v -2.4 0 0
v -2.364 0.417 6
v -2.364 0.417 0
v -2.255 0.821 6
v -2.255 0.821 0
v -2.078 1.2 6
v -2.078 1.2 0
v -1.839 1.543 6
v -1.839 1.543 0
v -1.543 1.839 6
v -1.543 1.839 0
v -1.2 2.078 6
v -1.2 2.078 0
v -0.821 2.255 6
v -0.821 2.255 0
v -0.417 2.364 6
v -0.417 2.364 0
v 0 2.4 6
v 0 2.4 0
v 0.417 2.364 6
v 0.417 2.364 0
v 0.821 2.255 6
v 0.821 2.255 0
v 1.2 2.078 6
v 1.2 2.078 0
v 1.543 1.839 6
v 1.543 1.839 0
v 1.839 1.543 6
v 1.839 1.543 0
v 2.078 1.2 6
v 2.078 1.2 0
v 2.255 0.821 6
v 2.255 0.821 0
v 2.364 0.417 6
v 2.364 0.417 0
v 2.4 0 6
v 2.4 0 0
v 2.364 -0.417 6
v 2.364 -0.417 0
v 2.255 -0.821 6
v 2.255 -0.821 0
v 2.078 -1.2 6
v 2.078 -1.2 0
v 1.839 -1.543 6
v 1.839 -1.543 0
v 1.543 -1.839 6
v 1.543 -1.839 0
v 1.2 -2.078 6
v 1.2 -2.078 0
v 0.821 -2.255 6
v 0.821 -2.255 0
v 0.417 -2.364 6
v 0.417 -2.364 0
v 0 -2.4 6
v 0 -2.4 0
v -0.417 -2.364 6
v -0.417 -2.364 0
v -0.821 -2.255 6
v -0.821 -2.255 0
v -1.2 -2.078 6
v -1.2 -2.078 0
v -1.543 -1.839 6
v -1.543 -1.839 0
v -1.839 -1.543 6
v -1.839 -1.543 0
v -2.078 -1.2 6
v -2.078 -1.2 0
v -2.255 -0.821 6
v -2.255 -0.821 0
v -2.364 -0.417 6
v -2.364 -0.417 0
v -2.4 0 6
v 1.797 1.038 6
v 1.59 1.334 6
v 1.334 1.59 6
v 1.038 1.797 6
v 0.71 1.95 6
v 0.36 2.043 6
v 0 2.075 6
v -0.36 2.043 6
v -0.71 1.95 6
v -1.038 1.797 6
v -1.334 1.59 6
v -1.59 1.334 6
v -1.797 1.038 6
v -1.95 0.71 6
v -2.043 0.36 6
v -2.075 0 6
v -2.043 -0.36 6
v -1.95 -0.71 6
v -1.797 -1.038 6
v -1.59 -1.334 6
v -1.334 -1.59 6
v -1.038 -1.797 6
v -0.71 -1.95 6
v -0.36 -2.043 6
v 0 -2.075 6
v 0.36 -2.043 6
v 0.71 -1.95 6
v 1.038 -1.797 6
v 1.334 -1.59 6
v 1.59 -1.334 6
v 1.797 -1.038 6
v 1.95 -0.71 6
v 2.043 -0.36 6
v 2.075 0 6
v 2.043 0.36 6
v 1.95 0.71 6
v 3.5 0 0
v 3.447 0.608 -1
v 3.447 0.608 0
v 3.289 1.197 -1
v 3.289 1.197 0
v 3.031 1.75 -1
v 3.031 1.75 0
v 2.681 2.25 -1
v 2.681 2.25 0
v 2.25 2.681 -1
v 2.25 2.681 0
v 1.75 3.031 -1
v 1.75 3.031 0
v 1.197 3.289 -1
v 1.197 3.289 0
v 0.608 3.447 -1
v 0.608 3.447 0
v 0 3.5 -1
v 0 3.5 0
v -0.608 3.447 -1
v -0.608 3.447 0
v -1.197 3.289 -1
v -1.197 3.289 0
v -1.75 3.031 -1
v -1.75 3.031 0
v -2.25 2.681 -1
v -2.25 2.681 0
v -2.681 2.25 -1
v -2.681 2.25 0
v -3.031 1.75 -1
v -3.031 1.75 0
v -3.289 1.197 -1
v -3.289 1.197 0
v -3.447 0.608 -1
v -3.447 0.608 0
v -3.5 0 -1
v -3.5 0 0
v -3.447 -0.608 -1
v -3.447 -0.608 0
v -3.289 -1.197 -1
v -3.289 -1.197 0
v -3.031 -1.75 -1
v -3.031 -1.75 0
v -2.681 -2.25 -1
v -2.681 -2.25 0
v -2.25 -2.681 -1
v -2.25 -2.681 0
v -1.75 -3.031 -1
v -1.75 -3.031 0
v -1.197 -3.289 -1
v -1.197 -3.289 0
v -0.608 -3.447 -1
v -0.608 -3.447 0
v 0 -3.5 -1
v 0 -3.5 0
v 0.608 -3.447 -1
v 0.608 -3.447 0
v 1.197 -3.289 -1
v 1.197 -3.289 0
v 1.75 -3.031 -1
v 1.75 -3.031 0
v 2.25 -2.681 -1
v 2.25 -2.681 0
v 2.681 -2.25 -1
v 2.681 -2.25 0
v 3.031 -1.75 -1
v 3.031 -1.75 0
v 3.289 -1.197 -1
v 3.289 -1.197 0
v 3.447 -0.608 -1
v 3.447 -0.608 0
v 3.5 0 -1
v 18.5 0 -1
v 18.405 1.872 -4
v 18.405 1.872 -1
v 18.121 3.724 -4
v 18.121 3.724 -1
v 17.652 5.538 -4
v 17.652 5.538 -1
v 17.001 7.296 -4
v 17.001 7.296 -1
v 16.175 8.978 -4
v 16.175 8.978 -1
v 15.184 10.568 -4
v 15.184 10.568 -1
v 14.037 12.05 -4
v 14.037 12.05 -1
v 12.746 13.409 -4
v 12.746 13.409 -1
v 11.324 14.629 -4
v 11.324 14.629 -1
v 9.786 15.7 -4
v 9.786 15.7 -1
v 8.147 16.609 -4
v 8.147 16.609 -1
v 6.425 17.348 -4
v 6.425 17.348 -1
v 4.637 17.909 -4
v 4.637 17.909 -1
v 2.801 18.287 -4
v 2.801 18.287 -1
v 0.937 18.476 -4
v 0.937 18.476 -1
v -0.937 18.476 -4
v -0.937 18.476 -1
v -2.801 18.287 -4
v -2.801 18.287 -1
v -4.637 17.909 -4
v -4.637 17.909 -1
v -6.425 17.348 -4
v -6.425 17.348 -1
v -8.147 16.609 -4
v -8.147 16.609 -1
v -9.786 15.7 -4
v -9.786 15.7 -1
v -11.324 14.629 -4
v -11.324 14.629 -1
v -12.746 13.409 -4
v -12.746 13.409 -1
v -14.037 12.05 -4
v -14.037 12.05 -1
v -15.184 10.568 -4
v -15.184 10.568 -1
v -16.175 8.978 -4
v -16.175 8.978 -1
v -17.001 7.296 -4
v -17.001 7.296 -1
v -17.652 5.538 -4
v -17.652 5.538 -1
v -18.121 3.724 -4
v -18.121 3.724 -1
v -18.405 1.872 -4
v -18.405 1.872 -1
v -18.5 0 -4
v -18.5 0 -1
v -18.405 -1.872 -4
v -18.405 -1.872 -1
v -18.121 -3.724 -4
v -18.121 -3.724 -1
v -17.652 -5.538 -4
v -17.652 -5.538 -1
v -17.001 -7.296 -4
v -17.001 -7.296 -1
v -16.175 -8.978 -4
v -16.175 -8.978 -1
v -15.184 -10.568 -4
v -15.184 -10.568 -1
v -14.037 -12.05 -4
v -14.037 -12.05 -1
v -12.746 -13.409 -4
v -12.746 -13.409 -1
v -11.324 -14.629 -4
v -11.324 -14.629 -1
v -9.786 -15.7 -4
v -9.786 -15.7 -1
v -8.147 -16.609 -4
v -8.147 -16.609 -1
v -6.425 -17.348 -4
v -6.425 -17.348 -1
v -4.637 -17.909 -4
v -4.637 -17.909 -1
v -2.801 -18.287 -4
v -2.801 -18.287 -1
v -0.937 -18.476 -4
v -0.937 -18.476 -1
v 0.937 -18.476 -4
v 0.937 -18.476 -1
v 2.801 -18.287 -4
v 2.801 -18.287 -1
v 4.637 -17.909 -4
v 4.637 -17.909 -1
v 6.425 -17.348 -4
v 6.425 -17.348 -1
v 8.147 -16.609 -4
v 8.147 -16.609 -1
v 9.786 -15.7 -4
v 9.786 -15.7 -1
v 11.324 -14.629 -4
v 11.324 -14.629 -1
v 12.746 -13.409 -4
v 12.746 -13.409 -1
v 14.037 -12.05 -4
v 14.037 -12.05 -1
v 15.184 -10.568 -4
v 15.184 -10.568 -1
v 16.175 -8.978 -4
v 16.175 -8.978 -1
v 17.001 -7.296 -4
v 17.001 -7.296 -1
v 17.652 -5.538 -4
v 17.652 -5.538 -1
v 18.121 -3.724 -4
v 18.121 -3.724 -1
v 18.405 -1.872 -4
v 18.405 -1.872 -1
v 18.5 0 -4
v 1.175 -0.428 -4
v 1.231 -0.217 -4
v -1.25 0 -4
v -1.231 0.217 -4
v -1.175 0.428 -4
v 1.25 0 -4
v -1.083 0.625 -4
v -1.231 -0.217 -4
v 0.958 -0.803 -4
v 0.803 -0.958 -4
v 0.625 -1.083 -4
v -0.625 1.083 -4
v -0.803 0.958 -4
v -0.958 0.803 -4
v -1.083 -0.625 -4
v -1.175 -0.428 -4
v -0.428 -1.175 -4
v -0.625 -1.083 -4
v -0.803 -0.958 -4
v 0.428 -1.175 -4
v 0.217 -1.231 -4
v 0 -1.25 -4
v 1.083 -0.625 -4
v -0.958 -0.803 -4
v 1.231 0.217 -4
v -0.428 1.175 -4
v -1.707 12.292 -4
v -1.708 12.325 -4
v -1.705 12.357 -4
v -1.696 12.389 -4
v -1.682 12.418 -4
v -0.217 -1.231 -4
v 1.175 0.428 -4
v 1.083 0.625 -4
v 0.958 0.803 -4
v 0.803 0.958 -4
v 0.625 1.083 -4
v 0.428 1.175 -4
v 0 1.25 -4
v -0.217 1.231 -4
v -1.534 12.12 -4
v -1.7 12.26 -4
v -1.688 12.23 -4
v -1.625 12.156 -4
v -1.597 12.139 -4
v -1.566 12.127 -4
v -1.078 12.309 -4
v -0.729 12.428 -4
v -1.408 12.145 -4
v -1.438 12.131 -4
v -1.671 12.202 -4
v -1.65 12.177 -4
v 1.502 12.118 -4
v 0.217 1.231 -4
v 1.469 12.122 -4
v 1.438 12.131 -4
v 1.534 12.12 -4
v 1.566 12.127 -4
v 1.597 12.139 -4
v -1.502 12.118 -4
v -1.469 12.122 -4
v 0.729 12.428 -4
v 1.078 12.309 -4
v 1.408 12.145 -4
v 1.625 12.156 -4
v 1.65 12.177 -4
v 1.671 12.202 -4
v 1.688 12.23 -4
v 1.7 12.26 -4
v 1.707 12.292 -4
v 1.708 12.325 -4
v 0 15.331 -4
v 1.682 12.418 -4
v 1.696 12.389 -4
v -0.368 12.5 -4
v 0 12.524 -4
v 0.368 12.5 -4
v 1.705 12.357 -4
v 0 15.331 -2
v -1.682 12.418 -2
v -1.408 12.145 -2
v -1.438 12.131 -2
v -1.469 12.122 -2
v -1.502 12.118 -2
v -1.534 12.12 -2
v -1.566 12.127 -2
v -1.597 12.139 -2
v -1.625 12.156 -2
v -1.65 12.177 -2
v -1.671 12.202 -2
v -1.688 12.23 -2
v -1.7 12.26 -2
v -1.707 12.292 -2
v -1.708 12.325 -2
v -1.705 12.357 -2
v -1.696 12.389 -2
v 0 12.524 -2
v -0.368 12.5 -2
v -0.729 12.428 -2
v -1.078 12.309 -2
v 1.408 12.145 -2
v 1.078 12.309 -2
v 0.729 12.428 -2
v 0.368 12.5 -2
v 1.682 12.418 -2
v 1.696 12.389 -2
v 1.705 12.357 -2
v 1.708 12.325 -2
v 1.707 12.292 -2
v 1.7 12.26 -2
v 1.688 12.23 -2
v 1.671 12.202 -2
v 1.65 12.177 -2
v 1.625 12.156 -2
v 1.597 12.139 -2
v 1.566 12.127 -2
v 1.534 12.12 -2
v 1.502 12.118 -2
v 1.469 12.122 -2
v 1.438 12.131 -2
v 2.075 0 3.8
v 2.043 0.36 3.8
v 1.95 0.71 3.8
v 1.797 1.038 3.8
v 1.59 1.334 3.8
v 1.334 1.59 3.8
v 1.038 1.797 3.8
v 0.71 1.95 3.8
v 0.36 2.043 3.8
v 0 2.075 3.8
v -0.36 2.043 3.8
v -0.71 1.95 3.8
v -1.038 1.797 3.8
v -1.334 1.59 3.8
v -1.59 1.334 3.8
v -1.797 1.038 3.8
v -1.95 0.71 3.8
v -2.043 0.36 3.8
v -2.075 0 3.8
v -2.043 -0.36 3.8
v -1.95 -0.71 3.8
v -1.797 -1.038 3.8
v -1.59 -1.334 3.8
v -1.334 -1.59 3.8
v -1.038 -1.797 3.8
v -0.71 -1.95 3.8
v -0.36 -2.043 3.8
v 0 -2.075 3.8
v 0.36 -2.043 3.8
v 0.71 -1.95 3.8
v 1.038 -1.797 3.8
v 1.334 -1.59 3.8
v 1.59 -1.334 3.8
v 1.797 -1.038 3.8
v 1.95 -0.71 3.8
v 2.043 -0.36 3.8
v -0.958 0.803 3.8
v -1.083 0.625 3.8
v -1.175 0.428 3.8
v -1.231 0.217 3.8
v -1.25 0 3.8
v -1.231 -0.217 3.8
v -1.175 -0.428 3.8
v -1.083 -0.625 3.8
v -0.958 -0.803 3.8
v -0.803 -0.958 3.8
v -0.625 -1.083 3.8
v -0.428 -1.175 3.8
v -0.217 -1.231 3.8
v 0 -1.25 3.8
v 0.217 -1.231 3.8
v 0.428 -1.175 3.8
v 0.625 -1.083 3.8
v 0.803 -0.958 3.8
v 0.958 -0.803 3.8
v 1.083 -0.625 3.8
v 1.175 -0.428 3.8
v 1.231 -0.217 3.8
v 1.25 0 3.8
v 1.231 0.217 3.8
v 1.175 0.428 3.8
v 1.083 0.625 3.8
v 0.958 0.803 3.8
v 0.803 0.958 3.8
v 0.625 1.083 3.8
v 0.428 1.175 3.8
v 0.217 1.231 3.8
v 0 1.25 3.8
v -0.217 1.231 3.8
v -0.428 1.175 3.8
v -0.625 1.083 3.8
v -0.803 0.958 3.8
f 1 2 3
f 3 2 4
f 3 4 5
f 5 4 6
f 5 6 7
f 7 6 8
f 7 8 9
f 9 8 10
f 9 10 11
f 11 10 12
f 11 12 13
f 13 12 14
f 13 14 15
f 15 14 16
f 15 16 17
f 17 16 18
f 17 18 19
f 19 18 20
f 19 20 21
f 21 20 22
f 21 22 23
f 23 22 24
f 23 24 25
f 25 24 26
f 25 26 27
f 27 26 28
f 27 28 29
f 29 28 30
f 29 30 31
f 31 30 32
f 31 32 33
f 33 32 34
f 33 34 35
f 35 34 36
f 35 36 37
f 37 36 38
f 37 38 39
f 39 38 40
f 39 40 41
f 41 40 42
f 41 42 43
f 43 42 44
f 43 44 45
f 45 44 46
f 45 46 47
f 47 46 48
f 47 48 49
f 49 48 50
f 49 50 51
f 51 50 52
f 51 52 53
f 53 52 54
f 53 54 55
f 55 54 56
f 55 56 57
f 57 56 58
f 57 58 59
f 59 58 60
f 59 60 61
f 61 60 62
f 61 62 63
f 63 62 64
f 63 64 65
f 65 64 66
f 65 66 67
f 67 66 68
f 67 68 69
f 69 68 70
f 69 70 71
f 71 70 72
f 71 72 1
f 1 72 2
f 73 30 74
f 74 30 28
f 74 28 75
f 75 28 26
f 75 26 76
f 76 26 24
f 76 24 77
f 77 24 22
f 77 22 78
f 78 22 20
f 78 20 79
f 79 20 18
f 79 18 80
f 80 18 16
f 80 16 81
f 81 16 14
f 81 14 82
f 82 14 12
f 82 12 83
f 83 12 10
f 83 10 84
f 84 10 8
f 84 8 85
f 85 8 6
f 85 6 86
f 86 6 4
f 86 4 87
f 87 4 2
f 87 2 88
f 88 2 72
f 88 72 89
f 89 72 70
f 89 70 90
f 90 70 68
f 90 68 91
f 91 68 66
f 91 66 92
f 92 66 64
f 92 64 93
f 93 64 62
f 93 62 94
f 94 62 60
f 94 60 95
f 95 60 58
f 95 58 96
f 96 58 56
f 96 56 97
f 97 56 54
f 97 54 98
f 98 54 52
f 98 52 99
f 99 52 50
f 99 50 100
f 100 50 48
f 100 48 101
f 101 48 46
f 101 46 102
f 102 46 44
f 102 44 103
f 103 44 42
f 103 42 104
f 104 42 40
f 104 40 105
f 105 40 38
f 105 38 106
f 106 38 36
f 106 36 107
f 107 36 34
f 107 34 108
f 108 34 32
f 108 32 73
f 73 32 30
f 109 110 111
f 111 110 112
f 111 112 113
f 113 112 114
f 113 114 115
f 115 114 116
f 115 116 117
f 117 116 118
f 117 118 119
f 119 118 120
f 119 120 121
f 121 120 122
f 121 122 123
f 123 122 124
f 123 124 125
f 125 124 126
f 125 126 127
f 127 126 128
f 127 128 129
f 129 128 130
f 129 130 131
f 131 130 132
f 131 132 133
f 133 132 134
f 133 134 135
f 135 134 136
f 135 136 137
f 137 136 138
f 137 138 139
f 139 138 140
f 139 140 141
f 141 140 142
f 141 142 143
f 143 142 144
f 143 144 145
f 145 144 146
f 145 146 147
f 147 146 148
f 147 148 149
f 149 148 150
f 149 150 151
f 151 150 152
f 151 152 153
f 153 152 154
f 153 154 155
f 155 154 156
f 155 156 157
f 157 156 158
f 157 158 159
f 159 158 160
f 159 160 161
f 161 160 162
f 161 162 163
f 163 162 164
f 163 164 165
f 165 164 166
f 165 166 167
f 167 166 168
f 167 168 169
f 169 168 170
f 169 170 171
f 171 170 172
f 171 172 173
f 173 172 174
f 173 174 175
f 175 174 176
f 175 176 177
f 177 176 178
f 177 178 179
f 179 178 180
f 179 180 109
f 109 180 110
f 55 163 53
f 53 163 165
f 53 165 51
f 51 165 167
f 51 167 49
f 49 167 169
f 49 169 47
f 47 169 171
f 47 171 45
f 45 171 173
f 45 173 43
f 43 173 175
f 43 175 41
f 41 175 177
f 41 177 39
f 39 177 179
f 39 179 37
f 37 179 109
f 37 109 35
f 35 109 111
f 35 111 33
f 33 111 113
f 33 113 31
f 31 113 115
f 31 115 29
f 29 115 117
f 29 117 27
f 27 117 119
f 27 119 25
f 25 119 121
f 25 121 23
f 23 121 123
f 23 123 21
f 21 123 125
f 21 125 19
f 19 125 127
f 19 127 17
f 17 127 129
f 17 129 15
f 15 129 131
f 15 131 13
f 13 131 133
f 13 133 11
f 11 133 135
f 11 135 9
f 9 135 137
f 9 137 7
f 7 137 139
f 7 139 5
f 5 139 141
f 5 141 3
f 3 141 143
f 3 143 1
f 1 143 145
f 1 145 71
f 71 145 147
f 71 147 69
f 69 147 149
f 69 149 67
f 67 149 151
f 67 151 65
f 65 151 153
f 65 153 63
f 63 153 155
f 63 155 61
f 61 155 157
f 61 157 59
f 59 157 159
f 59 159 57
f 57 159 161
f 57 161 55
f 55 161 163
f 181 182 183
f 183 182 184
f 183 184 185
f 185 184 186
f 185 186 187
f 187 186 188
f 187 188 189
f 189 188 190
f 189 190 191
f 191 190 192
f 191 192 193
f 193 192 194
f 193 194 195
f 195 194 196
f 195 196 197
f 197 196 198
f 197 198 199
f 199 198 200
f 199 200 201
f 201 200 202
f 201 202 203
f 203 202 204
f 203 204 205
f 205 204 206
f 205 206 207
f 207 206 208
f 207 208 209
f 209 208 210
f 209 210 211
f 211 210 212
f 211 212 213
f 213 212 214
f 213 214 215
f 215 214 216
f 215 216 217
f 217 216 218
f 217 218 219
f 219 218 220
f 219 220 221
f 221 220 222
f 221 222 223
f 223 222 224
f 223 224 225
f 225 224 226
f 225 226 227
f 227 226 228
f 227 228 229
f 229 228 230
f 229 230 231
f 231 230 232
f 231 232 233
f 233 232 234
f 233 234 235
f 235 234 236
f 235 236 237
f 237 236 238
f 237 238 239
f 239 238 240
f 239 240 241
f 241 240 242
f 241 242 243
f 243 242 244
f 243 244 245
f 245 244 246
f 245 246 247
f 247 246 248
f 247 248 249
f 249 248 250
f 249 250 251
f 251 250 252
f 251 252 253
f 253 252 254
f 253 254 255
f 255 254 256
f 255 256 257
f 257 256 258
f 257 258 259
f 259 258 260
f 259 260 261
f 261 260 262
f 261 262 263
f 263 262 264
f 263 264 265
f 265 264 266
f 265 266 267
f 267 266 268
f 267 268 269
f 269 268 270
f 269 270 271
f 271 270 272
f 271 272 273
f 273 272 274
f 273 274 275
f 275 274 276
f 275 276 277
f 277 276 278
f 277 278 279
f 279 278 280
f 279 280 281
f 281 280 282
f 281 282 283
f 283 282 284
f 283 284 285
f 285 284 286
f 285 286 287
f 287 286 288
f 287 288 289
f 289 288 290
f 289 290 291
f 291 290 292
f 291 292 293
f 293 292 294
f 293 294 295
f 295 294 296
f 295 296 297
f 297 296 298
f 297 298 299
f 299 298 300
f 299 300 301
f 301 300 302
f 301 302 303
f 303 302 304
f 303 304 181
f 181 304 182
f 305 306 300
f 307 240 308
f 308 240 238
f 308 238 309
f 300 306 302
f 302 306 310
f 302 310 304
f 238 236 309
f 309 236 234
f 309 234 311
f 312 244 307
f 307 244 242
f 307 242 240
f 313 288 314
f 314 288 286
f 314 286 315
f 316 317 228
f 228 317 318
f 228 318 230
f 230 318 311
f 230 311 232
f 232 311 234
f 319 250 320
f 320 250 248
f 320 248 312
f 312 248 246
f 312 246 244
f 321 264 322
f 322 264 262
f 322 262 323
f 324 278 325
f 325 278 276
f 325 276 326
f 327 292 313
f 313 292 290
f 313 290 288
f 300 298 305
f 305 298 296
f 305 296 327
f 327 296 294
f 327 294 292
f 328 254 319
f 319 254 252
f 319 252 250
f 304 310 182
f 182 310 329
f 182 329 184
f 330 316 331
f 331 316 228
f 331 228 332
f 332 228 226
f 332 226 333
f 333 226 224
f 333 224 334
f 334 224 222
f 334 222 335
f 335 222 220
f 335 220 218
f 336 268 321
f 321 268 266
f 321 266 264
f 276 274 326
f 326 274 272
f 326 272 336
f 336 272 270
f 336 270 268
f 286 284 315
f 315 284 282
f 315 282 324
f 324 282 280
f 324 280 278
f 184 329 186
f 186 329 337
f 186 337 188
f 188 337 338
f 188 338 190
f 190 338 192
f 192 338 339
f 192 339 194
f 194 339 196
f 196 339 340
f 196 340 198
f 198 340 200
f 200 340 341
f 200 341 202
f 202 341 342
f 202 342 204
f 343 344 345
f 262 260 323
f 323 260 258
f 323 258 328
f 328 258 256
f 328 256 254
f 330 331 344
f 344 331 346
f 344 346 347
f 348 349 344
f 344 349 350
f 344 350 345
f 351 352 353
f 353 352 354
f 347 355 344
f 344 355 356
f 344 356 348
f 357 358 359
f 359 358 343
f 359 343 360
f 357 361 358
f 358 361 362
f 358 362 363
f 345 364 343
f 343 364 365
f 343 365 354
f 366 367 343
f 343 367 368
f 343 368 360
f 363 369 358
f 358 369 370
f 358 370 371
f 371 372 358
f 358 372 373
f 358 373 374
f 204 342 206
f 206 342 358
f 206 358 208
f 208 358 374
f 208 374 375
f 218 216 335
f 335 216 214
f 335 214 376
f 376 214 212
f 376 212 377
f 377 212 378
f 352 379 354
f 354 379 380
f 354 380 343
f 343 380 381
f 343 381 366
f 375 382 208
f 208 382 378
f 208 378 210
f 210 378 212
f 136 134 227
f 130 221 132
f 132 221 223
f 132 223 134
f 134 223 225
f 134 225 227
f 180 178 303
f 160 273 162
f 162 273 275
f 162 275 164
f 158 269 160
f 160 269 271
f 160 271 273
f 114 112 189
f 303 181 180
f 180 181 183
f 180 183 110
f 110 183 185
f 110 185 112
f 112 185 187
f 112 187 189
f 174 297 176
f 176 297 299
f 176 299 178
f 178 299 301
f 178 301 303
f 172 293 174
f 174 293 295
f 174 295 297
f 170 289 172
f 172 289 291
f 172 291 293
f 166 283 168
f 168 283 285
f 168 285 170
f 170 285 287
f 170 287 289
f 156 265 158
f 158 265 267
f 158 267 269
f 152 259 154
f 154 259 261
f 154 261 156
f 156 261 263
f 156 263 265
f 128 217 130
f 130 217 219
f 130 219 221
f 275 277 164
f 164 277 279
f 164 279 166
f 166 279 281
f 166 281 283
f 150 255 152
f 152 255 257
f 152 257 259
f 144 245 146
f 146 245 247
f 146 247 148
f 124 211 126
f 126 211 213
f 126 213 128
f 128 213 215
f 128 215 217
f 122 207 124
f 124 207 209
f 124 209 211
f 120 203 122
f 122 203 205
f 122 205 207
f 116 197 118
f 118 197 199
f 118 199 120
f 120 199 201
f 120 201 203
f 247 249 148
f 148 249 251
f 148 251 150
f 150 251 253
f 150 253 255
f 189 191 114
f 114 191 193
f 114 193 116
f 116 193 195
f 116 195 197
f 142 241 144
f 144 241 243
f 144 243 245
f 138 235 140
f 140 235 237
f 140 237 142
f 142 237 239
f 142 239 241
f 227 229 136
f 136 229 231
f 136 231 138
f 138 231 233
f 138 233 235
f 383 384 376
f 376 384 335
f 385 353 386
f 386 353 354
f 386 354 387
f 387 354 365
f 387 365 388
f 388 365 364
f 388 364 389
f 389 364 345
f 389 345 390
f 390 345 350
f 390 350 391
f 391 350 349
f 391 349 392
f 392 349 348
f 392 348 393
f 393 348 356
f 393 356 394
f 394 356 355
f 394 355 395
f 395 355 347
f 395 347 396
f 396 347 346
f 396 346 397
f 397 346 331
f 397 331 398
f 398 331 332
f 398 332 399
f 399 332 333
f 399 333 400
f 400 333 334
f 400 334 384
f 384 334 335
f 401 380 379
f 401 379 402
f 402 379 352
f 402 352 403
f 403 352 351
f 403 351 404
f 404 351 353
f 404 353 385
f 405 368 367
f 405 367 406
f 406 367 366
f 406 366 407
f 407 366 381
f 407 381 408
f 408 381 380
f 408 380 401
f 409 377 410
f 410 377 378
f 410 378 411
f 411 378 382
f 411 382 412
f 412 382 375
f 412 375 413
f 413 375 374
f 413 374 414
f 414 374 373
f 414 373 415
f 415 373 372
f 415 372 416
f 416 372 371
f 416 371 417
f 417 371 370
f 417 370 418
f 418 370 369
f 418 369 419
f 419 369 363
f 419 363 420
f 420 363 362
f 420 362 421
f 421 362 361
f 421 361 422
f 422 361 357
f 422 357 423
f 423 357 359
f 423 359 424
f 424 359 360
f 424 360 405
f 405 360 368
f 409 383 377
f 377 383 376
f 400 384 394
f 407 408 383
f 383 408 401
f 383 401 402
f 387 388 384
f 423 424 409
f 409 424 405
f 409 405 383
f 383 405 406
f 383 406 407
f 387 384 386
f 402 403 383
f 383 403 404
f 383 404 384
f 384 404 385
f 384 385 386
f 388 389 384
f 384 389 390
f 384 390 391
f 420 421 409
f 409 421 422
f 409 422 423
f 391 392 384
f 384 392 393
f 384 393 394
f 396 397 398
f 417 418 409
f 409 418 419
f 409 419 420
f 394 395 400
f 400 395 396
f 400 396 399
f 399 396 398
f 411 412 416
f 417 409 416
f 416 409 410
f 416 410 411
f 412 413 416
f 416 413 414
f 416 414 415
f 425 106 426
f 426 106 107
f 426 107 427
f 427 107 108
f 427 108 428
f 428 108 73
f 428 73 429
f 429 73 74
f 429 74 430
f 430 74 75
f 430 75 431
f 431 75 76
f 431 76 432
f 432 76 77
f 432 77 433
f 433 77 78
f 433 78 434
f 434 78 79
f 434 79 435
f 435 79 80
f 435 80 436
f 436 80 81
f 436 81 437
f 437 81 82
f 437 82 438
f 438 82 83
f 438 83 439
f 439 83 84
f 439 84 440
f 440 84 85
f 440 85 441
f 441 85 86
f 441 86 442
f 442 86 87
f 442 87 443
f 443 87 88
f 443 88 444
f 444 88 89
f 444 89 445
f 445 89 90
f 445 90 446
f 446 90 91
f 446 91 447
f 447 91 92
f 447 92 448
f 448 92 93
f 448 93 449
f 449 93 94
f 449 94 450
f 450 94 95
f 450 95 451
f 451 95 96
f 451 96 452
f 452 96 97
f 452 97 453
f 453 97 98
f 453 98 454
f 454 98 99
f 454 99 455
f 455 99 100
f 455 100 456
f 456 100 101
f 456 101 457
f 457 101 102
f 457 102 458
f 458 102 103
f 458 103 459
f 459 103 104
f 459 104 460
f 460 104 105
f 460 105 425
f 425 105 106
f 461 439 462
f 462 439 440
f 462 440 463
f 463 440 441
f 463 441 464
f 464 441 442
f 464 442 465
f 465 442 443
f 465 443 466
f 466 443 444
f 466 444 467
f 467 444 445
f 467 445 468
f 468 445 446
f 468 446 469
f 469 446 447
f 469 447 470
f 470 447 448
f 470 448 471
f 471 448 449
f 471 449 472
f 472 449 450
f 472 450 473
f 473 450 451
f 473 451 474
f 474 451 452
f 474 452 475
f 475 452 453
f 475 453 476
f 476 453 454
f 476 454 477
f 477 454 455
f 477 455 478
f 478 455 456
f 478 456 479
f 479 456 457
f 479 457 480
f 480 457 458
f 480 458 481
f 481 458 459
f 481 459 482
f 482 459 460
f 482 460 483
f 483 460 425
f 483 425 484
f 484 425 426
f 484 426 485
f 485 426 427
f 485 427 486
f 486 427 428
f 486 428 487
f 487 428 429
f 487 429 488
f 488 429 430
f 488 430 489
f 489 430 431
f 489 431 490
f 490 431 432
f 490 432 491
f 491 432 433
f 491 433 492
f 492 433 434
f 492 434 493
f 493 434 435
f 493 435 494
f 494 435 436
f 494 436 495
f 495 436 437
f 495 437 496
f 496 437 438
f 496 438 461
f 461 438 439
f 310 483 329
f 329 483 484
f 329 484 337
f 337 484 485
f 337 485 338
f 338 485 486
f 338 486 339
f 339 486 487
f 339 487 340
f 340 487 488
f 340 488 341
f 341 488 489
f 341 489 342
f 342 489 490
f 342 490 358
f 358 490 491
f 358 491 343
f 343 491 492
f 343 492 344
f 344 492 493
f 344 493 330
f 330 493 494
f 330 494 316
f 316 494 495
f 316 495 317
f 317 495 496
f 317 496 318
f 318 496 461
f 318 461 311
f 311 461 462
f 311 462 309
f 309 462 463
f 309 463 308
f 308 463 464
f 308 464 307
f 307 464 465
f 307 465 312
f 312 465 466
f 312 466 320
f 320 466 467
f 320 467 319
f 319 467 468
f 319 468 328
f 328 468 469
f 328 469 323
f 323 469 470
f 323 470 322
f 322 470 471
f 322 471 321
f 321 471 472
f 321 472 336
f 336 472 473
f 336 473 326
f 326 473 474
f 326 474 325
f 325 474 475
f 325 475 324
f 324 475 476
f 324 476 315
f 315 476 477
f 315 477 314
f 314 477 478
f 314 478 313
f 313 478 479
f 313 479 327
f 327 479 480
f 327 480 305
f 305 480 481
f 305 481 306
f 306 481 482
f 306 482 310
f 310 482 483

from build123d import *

# Parameters (mm, degrees)
CROQUIS1_R              = 2.4
SALIENTE_EXTRUIR1_DEPTH = 6
CROQUIS2_R              = 3.5
SALIENTE_EXTRUIR2_DEPTH = 1
CROQUIS3_R              = 18.5
SALIENTE_EXTRUIR3_DEPTH = 3
CORTAR_EXTRUIR1_DEPTH   = 2
CROQUIS5_R              = 2.075
CORTAR_EXTRUIR2_DEPTH   = 2.2
CROQUIS6_R              = 1.25
CORTAR_EXTRUIR3_DEPTH   = 28.300915736


with BuildPart() as part:
    # Croquis1 → Saliente-Extruir1 (new body)
    with BuildSketch(Plane.XY):
        Circle(CROQUIS1_R)
    extrude(amount=SALIENTE_EXTRUIR1_DEPTH)

    # Croquis2 → Saliente-Extruir2 (add)
    with BuildSketch(Plane(origin=(0, 0, 0), x_dir=(-1, 0, 0), z_dir=(0, 0, -1))):
        Circle(CROQUIS2_R)
    extrude(amount=SALIENTE_EXTRUIR2_DEPTH)

    # Croquis3 → Saliente-Extruir3 (add)
    with BuildSketch(Plane(origin=(0, 0, -1), x_dir=(-1, 0, 0), z_dir=(0, 0, -1))):
        Circle(CROQUIS3_R)
    extrude(amount=SALIENTE_EXTRUIR3_DEPTH)

    # Croquis4 → Cortar-Extruir1 (cut)
    with BuildSketch(Plane(origin=(0, 0, -4), x_dir=(-1, 0, 0), z_dir=(0, 0, -1))):
        with BuildLine():
            Line((0, 15.331093131), (-1.68173019, 12.418250997))
            ThreePointArc((-1.68173019, 12.418250997), (-1.649800286, 12.176683613), (-1.408167444, 12.145252908))
            ThreePointArc((-1.408167444, 12.145252908), (-0.72912408, 12.427844555), (0, 12.524467551))
            ThreePointArc((0, 12.524467551), (0.72912408, 12.427844555), (1.408167444, 12.145252908))
            ThreePointArc((1.408167444, 12.145252908), (1.649800286, 12.176683613), (1.68173019, 12.418250997))
            Line((1.68173019, 12.418250997), (0, 15.331093131))
        make_face()
    extrude(amount=-CORTAR_EXTRUIR1_DEPTH, mode=Mode.SUBTRACT)

    # Croquis5 → Cortar-Extruir2 (cut)
    with BuildSketch(Plane.XY.offset(6)):
        Circle(CROQUIS5_R)
    extrude(amount=-CORTAR_EXTRUIR2_DEPTH, mode=Mode.SUBTRACT)

    # Croquis6 → Cortar-Extruir3 (cut, through all)
    with BuildSketch(Plane.XY.offset(3.8)):
        Circle(CROQUIS6_R)
    extrude(amount=-CORTAR_EXTRUIR3_DEPTH, mode=Mode.SUBTRACT)


solid = part.part
